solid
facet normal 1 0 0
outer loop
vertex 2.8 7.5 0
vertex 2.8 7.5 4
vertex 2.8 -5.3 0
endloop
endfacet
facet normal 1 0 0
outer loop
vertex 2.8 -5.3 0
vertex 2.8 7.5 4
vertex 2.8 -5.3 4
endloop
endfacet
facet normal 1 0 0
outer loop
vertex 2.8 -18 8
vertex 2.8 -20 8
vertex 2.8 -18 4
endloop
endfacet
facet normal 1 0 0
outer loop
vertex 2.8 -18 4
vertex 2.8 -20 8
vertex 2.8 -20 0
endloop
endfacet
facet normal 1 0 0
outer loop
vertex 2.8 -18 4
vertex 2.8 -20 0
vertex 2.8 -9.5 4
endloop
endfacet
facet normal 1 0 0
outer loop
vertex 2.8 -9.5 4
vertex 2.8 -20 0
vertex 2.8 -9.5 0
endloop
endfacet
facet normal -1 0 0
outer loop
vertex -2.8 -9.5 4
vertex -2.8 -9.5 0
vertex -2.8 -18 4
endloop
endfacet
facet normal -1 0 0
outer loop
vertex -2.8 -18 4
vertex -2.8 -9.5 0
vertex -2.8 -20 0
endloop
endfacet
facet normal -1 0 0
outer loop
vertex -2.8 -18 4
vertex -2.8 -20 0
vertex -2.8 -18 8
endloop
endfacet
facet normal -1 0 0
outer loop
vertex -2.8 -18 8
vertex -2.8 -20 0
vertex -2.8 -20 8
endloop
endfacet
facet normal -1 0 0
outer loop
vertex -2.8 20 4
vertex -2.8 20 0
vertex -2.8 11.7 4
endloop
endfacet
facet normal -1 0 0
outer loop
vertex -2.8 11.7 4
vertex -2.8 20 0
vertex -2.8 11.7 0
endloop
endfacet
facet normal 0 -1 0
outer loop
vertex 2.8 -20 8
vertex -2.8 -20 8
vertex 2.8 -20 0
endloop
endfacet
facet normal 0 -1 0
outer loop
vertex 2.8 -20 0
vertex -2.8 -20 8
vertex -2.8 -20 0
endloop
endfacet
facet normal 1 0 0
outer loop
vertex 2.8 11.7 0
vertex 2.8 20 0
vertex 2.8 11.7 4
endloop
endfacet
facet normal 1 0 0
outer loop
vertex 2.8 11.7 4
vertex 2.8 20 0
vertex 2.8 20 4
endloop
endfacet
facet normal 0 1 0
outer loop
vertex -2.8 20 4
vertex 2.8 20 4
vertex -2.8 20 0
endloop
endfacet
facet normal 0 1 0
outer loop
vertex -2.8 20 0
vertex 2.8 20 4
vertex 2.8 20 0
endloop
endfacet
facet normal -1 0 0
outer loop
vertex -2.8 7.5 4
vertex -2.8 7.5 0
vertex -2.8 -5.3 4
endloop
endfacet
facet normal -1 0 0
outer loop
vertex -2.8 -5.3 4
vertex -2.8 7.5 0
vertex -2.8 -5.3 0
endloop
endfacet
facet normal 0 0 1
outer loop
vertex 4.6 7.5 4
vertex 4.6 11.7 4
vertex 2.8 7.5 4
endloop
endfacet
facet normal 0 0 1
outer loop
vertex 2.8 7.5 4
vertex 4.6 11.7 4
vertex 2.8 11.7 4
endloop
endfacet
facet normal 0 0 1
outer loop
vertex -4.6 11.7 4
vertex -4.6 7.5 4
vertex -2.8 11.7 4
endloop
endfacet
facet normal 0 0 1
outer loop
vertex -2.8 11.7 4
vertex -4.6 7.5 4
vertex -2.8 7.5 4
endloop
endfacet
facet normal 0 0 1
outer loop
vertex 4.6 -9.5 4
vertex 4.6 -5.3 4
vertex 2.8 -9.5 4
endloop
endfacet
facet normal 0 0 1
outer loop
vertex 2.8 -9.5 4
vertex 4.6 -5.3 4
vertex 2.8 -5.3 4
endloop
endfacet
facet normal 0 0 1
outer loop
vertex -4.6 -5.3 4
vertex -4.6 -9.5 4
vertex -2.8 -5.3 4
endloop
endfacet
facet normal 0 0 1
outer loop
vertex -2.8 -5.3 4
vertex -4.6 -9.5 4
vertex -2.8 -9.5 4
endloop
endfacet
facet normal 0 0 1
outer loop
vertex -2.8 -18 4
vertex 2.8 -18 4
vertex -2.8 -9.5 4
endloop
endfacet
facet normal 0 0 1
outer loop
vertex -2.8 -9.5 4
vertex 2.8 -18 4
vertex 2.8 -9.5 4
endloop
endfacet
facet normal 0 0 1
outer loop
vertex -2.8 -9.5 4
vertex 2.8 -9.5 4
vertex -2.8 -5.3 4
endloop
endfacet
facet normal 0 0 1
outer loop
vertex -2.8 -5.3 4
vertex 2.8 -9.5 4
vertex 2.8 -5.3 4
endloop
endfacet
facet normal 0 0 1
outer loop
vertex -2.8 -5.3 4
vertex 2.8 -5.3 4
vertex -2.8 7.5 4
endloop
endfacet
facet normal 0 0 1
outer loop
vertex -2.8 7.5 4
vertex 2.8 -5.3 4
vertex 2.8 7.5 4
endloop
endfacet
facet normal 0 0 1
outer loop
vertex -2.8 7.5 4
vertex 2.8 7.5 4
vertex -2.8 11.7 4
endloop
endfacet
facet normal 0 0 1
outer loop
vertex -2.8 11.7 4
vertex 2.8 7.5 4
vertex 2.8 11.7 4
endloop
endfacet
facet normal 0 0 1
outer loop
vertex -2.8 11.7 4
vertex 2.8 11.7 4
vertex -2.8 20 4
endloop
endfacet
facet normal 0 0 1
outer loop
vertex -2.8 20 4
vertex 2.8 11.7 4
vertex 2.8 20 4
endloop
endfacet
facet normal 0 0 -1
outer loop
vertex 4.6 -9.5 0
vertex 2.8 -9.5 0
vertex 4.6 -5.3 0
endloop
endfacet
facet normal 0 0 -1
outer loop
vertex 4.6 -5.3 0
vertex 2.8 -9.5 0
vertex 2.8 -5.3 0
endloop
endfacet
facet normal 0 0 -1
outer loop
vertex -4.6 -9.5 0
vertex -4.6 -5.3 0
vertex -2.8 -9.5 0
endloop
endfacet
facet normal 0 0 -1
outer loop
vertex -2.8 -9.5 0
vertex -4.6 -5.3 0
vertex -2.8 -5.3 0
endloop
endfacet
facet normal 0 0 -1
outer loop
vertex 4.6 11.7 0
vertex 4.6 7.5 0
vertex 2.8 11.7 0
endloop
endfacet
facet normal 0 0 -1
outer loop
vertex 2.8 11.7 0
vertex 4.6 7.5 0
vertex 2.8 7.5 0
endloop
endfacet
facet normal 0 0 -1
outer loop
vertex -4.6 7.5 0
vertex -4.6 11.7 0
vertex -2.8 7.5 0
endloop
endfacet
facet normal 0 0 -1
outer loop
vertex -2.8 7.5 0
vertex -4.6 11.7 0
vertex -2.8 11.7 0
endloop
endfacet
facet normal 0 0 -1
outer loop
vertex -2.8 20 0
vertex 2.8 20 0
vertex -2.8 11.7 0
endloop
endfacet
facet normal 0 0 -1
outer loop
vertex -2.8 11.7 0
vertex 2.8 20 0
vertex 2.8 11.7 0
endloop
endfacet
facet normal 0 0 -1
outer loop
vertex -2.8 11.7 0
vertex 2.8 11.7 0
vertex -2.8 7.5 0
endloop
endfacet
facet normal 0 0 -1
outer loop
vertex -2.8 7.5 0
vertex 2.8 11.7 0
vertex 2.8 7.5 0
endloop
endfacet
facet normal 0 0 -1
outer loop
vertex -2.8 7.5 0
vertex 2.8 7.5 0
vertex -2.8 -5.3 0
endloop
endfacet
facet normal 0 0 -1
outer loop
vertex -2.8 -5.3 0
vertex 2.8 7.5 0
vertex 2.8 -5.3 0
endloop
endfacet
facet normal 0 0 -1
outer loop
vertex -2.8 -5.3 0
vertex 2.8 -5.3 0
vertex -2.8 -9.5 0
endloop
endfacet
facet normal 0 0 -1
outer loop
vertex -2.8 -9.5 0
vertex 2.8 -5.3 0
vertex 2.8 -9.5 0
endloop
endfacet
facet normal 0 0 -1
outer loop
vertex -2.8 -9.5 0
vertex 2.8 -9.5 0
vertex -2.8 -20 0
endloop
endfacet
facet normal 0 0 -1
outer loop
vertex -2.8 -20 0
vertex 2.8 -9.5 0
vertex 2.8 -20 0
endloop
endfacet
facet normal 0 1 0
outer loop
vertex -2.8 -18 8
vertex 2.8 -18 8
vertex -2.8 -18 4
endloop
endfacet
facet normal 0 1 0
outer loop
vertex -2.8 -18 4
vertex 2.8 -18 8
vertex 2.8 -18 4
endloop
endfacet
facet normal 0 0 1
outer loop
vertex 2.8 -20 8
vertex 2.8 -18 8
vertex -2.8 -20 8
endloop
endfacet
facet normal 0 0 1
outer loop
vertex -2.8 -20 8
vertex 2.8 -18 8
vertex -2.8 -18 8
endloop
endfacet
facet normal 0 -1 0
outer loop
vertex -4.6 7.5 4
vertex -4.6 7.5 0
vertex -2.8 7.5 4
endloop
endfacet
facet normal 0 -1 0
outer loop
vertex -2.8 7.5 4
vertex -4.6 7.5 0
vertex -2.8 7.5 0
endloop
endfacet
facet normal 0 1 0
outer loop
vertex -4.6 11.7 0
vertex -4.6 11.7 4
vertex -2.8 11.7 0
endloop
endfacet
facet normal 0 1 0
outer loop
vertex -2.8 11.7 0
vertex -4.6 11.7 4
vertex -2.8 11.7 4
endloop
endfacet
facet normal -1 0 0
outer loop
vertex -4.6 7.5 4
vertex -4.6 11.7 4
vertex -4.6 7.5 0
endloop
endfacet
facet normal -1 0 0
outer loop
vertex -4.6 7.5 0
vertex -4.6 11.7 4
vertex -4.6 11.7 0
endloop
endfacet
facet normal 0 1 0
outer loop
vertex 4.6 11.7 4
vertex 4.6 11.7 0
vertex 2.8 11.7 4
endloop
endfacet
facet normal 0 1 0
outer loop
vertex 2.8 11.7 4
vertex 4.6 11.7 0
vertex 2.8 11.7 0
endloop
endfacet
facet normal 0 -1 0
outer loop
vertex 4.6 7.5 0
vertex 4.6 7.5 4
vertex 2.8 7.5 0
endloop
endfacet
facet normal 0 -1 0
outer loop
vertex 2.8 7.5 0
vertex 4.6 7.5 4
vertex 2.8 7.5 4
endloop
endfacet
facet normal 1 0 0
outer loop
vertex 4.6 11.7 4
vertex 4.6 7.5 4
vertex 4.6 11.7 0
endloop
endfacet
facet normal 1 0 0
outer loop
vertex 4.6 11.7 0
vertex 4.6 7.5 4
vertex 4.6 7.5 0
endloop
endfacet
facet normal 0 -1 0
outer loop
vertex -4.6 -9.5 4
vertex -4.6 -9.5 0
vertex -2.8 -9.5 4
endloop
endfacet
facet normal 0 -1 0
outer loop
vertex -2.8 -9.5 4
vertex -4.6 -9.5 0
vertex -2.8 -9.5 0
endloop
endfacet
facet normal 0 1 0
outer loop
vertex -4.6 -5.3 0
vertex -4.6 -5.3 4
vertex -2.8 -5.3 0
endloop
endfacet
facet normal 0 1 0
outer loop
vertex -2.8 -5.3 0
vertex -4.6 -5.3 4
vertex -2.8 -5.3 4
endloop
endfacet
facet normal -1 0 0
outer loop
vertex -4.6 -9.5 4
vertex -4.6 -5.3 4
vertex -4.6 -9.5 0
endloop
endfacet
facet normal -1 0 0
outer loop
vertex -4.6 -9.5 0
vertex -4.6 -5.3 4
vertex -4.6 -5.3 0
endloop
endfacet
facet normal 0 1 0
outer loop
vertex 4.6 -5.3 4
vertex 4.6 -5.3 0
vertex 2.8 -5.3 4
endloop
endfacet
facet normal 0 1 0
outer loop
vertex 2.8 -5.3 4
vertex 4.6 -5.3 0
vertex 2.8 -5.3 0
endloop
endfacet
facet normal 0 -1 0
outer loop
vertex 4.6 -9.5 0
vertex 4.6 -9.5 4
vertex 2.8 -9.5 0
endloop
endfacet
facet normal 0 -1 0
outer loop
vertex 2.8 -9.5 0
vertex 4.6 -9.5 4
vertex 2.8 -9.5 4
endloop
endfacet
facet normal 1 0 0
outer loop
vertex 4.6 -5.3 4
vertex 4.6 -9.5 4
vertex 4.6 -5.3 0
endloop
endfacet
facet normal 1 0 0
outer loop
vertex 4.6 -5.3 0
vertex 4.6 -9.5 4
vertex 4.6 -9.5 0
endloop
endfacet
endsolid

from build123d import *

# Parameters (mm, degrees)
SKETCH1_W               = 5.6
SKETCH1_H               = 40
BOSS_EXTRUDE1_DEPTH     = 4
SKETCH2_W               = 5.6
SKETCH2_H               = 2
BOSS_EXTRUDE2_DEPTH     = 4
SKETCH4_W               = 4
SKETCH4_H               = 4.2
BOSS_EXTRUDE3_DEPTH     = 1.8
MIRROR2_COPY_1_SKETCH_W = 4
MIRROR2_COPY_1_SKETCH_H = 4.2
MIRROR2_COPY_1_DEPTH    = 1.8


with BuildPart() as part:
    # Sketch1 → Boss-Extrude1 (new body)
    with BuildSketch(Plane.XY):
        Rectangle(SKETCH1_W, SKETCH1_H)
    extrude(amount=BOSS_EXTRUDE1_DEPTH)

    # Sketch2 → Boss-Extrude2 (add)
    with BuildSketch(Plane.XY.offset(4)):
        with Locations((0, -19)):
            Rectangle(SKETCH2_W, SKETCH2_H)
    extrude(amount=BOSS_EXTRUDE2_DEPTH)

    # Sketch4 → Boss-Extrude3 (add)
    with BuildSketch(Plane.ZY.offset(2.8)):
        with Locations((2, 9.6)):
            Rectangle(SKETCH4_W, SKETCH4_H)
    boss_extrude3 = extrude(amount=BOSS_EXTRUDE3_DEPTH)

    # Mirror1: Boss-Extrude3 across plane
    add(boss_extrude3.mirror(Plane.ZY))

    # Mirror2: Boss-Extrude3 across plane
    add(boss_extrude3.mirror(Plane(origin=(0, 1.1, 0), x_dir=(0, 0, 1), z_dir=(0, -1, 0))))

    # Mirror2 copy 1 sketch → Mirror2 copy 1 (add)
    with BuildSketch(Plane(origin=(2.8, 2.2, 0), x_dir=(0, 0, 1), z_dir=(1, 0, 0))):
        with Locations((2, 9.6)):
            Rectangle(MIRROR2_COPY_1_SKETCH_W, MIRROR2_COPY_1_SKETCH_H)
    extrude(amount=MIRROR2_COPY_1_DEPTH)


solid = part.part
